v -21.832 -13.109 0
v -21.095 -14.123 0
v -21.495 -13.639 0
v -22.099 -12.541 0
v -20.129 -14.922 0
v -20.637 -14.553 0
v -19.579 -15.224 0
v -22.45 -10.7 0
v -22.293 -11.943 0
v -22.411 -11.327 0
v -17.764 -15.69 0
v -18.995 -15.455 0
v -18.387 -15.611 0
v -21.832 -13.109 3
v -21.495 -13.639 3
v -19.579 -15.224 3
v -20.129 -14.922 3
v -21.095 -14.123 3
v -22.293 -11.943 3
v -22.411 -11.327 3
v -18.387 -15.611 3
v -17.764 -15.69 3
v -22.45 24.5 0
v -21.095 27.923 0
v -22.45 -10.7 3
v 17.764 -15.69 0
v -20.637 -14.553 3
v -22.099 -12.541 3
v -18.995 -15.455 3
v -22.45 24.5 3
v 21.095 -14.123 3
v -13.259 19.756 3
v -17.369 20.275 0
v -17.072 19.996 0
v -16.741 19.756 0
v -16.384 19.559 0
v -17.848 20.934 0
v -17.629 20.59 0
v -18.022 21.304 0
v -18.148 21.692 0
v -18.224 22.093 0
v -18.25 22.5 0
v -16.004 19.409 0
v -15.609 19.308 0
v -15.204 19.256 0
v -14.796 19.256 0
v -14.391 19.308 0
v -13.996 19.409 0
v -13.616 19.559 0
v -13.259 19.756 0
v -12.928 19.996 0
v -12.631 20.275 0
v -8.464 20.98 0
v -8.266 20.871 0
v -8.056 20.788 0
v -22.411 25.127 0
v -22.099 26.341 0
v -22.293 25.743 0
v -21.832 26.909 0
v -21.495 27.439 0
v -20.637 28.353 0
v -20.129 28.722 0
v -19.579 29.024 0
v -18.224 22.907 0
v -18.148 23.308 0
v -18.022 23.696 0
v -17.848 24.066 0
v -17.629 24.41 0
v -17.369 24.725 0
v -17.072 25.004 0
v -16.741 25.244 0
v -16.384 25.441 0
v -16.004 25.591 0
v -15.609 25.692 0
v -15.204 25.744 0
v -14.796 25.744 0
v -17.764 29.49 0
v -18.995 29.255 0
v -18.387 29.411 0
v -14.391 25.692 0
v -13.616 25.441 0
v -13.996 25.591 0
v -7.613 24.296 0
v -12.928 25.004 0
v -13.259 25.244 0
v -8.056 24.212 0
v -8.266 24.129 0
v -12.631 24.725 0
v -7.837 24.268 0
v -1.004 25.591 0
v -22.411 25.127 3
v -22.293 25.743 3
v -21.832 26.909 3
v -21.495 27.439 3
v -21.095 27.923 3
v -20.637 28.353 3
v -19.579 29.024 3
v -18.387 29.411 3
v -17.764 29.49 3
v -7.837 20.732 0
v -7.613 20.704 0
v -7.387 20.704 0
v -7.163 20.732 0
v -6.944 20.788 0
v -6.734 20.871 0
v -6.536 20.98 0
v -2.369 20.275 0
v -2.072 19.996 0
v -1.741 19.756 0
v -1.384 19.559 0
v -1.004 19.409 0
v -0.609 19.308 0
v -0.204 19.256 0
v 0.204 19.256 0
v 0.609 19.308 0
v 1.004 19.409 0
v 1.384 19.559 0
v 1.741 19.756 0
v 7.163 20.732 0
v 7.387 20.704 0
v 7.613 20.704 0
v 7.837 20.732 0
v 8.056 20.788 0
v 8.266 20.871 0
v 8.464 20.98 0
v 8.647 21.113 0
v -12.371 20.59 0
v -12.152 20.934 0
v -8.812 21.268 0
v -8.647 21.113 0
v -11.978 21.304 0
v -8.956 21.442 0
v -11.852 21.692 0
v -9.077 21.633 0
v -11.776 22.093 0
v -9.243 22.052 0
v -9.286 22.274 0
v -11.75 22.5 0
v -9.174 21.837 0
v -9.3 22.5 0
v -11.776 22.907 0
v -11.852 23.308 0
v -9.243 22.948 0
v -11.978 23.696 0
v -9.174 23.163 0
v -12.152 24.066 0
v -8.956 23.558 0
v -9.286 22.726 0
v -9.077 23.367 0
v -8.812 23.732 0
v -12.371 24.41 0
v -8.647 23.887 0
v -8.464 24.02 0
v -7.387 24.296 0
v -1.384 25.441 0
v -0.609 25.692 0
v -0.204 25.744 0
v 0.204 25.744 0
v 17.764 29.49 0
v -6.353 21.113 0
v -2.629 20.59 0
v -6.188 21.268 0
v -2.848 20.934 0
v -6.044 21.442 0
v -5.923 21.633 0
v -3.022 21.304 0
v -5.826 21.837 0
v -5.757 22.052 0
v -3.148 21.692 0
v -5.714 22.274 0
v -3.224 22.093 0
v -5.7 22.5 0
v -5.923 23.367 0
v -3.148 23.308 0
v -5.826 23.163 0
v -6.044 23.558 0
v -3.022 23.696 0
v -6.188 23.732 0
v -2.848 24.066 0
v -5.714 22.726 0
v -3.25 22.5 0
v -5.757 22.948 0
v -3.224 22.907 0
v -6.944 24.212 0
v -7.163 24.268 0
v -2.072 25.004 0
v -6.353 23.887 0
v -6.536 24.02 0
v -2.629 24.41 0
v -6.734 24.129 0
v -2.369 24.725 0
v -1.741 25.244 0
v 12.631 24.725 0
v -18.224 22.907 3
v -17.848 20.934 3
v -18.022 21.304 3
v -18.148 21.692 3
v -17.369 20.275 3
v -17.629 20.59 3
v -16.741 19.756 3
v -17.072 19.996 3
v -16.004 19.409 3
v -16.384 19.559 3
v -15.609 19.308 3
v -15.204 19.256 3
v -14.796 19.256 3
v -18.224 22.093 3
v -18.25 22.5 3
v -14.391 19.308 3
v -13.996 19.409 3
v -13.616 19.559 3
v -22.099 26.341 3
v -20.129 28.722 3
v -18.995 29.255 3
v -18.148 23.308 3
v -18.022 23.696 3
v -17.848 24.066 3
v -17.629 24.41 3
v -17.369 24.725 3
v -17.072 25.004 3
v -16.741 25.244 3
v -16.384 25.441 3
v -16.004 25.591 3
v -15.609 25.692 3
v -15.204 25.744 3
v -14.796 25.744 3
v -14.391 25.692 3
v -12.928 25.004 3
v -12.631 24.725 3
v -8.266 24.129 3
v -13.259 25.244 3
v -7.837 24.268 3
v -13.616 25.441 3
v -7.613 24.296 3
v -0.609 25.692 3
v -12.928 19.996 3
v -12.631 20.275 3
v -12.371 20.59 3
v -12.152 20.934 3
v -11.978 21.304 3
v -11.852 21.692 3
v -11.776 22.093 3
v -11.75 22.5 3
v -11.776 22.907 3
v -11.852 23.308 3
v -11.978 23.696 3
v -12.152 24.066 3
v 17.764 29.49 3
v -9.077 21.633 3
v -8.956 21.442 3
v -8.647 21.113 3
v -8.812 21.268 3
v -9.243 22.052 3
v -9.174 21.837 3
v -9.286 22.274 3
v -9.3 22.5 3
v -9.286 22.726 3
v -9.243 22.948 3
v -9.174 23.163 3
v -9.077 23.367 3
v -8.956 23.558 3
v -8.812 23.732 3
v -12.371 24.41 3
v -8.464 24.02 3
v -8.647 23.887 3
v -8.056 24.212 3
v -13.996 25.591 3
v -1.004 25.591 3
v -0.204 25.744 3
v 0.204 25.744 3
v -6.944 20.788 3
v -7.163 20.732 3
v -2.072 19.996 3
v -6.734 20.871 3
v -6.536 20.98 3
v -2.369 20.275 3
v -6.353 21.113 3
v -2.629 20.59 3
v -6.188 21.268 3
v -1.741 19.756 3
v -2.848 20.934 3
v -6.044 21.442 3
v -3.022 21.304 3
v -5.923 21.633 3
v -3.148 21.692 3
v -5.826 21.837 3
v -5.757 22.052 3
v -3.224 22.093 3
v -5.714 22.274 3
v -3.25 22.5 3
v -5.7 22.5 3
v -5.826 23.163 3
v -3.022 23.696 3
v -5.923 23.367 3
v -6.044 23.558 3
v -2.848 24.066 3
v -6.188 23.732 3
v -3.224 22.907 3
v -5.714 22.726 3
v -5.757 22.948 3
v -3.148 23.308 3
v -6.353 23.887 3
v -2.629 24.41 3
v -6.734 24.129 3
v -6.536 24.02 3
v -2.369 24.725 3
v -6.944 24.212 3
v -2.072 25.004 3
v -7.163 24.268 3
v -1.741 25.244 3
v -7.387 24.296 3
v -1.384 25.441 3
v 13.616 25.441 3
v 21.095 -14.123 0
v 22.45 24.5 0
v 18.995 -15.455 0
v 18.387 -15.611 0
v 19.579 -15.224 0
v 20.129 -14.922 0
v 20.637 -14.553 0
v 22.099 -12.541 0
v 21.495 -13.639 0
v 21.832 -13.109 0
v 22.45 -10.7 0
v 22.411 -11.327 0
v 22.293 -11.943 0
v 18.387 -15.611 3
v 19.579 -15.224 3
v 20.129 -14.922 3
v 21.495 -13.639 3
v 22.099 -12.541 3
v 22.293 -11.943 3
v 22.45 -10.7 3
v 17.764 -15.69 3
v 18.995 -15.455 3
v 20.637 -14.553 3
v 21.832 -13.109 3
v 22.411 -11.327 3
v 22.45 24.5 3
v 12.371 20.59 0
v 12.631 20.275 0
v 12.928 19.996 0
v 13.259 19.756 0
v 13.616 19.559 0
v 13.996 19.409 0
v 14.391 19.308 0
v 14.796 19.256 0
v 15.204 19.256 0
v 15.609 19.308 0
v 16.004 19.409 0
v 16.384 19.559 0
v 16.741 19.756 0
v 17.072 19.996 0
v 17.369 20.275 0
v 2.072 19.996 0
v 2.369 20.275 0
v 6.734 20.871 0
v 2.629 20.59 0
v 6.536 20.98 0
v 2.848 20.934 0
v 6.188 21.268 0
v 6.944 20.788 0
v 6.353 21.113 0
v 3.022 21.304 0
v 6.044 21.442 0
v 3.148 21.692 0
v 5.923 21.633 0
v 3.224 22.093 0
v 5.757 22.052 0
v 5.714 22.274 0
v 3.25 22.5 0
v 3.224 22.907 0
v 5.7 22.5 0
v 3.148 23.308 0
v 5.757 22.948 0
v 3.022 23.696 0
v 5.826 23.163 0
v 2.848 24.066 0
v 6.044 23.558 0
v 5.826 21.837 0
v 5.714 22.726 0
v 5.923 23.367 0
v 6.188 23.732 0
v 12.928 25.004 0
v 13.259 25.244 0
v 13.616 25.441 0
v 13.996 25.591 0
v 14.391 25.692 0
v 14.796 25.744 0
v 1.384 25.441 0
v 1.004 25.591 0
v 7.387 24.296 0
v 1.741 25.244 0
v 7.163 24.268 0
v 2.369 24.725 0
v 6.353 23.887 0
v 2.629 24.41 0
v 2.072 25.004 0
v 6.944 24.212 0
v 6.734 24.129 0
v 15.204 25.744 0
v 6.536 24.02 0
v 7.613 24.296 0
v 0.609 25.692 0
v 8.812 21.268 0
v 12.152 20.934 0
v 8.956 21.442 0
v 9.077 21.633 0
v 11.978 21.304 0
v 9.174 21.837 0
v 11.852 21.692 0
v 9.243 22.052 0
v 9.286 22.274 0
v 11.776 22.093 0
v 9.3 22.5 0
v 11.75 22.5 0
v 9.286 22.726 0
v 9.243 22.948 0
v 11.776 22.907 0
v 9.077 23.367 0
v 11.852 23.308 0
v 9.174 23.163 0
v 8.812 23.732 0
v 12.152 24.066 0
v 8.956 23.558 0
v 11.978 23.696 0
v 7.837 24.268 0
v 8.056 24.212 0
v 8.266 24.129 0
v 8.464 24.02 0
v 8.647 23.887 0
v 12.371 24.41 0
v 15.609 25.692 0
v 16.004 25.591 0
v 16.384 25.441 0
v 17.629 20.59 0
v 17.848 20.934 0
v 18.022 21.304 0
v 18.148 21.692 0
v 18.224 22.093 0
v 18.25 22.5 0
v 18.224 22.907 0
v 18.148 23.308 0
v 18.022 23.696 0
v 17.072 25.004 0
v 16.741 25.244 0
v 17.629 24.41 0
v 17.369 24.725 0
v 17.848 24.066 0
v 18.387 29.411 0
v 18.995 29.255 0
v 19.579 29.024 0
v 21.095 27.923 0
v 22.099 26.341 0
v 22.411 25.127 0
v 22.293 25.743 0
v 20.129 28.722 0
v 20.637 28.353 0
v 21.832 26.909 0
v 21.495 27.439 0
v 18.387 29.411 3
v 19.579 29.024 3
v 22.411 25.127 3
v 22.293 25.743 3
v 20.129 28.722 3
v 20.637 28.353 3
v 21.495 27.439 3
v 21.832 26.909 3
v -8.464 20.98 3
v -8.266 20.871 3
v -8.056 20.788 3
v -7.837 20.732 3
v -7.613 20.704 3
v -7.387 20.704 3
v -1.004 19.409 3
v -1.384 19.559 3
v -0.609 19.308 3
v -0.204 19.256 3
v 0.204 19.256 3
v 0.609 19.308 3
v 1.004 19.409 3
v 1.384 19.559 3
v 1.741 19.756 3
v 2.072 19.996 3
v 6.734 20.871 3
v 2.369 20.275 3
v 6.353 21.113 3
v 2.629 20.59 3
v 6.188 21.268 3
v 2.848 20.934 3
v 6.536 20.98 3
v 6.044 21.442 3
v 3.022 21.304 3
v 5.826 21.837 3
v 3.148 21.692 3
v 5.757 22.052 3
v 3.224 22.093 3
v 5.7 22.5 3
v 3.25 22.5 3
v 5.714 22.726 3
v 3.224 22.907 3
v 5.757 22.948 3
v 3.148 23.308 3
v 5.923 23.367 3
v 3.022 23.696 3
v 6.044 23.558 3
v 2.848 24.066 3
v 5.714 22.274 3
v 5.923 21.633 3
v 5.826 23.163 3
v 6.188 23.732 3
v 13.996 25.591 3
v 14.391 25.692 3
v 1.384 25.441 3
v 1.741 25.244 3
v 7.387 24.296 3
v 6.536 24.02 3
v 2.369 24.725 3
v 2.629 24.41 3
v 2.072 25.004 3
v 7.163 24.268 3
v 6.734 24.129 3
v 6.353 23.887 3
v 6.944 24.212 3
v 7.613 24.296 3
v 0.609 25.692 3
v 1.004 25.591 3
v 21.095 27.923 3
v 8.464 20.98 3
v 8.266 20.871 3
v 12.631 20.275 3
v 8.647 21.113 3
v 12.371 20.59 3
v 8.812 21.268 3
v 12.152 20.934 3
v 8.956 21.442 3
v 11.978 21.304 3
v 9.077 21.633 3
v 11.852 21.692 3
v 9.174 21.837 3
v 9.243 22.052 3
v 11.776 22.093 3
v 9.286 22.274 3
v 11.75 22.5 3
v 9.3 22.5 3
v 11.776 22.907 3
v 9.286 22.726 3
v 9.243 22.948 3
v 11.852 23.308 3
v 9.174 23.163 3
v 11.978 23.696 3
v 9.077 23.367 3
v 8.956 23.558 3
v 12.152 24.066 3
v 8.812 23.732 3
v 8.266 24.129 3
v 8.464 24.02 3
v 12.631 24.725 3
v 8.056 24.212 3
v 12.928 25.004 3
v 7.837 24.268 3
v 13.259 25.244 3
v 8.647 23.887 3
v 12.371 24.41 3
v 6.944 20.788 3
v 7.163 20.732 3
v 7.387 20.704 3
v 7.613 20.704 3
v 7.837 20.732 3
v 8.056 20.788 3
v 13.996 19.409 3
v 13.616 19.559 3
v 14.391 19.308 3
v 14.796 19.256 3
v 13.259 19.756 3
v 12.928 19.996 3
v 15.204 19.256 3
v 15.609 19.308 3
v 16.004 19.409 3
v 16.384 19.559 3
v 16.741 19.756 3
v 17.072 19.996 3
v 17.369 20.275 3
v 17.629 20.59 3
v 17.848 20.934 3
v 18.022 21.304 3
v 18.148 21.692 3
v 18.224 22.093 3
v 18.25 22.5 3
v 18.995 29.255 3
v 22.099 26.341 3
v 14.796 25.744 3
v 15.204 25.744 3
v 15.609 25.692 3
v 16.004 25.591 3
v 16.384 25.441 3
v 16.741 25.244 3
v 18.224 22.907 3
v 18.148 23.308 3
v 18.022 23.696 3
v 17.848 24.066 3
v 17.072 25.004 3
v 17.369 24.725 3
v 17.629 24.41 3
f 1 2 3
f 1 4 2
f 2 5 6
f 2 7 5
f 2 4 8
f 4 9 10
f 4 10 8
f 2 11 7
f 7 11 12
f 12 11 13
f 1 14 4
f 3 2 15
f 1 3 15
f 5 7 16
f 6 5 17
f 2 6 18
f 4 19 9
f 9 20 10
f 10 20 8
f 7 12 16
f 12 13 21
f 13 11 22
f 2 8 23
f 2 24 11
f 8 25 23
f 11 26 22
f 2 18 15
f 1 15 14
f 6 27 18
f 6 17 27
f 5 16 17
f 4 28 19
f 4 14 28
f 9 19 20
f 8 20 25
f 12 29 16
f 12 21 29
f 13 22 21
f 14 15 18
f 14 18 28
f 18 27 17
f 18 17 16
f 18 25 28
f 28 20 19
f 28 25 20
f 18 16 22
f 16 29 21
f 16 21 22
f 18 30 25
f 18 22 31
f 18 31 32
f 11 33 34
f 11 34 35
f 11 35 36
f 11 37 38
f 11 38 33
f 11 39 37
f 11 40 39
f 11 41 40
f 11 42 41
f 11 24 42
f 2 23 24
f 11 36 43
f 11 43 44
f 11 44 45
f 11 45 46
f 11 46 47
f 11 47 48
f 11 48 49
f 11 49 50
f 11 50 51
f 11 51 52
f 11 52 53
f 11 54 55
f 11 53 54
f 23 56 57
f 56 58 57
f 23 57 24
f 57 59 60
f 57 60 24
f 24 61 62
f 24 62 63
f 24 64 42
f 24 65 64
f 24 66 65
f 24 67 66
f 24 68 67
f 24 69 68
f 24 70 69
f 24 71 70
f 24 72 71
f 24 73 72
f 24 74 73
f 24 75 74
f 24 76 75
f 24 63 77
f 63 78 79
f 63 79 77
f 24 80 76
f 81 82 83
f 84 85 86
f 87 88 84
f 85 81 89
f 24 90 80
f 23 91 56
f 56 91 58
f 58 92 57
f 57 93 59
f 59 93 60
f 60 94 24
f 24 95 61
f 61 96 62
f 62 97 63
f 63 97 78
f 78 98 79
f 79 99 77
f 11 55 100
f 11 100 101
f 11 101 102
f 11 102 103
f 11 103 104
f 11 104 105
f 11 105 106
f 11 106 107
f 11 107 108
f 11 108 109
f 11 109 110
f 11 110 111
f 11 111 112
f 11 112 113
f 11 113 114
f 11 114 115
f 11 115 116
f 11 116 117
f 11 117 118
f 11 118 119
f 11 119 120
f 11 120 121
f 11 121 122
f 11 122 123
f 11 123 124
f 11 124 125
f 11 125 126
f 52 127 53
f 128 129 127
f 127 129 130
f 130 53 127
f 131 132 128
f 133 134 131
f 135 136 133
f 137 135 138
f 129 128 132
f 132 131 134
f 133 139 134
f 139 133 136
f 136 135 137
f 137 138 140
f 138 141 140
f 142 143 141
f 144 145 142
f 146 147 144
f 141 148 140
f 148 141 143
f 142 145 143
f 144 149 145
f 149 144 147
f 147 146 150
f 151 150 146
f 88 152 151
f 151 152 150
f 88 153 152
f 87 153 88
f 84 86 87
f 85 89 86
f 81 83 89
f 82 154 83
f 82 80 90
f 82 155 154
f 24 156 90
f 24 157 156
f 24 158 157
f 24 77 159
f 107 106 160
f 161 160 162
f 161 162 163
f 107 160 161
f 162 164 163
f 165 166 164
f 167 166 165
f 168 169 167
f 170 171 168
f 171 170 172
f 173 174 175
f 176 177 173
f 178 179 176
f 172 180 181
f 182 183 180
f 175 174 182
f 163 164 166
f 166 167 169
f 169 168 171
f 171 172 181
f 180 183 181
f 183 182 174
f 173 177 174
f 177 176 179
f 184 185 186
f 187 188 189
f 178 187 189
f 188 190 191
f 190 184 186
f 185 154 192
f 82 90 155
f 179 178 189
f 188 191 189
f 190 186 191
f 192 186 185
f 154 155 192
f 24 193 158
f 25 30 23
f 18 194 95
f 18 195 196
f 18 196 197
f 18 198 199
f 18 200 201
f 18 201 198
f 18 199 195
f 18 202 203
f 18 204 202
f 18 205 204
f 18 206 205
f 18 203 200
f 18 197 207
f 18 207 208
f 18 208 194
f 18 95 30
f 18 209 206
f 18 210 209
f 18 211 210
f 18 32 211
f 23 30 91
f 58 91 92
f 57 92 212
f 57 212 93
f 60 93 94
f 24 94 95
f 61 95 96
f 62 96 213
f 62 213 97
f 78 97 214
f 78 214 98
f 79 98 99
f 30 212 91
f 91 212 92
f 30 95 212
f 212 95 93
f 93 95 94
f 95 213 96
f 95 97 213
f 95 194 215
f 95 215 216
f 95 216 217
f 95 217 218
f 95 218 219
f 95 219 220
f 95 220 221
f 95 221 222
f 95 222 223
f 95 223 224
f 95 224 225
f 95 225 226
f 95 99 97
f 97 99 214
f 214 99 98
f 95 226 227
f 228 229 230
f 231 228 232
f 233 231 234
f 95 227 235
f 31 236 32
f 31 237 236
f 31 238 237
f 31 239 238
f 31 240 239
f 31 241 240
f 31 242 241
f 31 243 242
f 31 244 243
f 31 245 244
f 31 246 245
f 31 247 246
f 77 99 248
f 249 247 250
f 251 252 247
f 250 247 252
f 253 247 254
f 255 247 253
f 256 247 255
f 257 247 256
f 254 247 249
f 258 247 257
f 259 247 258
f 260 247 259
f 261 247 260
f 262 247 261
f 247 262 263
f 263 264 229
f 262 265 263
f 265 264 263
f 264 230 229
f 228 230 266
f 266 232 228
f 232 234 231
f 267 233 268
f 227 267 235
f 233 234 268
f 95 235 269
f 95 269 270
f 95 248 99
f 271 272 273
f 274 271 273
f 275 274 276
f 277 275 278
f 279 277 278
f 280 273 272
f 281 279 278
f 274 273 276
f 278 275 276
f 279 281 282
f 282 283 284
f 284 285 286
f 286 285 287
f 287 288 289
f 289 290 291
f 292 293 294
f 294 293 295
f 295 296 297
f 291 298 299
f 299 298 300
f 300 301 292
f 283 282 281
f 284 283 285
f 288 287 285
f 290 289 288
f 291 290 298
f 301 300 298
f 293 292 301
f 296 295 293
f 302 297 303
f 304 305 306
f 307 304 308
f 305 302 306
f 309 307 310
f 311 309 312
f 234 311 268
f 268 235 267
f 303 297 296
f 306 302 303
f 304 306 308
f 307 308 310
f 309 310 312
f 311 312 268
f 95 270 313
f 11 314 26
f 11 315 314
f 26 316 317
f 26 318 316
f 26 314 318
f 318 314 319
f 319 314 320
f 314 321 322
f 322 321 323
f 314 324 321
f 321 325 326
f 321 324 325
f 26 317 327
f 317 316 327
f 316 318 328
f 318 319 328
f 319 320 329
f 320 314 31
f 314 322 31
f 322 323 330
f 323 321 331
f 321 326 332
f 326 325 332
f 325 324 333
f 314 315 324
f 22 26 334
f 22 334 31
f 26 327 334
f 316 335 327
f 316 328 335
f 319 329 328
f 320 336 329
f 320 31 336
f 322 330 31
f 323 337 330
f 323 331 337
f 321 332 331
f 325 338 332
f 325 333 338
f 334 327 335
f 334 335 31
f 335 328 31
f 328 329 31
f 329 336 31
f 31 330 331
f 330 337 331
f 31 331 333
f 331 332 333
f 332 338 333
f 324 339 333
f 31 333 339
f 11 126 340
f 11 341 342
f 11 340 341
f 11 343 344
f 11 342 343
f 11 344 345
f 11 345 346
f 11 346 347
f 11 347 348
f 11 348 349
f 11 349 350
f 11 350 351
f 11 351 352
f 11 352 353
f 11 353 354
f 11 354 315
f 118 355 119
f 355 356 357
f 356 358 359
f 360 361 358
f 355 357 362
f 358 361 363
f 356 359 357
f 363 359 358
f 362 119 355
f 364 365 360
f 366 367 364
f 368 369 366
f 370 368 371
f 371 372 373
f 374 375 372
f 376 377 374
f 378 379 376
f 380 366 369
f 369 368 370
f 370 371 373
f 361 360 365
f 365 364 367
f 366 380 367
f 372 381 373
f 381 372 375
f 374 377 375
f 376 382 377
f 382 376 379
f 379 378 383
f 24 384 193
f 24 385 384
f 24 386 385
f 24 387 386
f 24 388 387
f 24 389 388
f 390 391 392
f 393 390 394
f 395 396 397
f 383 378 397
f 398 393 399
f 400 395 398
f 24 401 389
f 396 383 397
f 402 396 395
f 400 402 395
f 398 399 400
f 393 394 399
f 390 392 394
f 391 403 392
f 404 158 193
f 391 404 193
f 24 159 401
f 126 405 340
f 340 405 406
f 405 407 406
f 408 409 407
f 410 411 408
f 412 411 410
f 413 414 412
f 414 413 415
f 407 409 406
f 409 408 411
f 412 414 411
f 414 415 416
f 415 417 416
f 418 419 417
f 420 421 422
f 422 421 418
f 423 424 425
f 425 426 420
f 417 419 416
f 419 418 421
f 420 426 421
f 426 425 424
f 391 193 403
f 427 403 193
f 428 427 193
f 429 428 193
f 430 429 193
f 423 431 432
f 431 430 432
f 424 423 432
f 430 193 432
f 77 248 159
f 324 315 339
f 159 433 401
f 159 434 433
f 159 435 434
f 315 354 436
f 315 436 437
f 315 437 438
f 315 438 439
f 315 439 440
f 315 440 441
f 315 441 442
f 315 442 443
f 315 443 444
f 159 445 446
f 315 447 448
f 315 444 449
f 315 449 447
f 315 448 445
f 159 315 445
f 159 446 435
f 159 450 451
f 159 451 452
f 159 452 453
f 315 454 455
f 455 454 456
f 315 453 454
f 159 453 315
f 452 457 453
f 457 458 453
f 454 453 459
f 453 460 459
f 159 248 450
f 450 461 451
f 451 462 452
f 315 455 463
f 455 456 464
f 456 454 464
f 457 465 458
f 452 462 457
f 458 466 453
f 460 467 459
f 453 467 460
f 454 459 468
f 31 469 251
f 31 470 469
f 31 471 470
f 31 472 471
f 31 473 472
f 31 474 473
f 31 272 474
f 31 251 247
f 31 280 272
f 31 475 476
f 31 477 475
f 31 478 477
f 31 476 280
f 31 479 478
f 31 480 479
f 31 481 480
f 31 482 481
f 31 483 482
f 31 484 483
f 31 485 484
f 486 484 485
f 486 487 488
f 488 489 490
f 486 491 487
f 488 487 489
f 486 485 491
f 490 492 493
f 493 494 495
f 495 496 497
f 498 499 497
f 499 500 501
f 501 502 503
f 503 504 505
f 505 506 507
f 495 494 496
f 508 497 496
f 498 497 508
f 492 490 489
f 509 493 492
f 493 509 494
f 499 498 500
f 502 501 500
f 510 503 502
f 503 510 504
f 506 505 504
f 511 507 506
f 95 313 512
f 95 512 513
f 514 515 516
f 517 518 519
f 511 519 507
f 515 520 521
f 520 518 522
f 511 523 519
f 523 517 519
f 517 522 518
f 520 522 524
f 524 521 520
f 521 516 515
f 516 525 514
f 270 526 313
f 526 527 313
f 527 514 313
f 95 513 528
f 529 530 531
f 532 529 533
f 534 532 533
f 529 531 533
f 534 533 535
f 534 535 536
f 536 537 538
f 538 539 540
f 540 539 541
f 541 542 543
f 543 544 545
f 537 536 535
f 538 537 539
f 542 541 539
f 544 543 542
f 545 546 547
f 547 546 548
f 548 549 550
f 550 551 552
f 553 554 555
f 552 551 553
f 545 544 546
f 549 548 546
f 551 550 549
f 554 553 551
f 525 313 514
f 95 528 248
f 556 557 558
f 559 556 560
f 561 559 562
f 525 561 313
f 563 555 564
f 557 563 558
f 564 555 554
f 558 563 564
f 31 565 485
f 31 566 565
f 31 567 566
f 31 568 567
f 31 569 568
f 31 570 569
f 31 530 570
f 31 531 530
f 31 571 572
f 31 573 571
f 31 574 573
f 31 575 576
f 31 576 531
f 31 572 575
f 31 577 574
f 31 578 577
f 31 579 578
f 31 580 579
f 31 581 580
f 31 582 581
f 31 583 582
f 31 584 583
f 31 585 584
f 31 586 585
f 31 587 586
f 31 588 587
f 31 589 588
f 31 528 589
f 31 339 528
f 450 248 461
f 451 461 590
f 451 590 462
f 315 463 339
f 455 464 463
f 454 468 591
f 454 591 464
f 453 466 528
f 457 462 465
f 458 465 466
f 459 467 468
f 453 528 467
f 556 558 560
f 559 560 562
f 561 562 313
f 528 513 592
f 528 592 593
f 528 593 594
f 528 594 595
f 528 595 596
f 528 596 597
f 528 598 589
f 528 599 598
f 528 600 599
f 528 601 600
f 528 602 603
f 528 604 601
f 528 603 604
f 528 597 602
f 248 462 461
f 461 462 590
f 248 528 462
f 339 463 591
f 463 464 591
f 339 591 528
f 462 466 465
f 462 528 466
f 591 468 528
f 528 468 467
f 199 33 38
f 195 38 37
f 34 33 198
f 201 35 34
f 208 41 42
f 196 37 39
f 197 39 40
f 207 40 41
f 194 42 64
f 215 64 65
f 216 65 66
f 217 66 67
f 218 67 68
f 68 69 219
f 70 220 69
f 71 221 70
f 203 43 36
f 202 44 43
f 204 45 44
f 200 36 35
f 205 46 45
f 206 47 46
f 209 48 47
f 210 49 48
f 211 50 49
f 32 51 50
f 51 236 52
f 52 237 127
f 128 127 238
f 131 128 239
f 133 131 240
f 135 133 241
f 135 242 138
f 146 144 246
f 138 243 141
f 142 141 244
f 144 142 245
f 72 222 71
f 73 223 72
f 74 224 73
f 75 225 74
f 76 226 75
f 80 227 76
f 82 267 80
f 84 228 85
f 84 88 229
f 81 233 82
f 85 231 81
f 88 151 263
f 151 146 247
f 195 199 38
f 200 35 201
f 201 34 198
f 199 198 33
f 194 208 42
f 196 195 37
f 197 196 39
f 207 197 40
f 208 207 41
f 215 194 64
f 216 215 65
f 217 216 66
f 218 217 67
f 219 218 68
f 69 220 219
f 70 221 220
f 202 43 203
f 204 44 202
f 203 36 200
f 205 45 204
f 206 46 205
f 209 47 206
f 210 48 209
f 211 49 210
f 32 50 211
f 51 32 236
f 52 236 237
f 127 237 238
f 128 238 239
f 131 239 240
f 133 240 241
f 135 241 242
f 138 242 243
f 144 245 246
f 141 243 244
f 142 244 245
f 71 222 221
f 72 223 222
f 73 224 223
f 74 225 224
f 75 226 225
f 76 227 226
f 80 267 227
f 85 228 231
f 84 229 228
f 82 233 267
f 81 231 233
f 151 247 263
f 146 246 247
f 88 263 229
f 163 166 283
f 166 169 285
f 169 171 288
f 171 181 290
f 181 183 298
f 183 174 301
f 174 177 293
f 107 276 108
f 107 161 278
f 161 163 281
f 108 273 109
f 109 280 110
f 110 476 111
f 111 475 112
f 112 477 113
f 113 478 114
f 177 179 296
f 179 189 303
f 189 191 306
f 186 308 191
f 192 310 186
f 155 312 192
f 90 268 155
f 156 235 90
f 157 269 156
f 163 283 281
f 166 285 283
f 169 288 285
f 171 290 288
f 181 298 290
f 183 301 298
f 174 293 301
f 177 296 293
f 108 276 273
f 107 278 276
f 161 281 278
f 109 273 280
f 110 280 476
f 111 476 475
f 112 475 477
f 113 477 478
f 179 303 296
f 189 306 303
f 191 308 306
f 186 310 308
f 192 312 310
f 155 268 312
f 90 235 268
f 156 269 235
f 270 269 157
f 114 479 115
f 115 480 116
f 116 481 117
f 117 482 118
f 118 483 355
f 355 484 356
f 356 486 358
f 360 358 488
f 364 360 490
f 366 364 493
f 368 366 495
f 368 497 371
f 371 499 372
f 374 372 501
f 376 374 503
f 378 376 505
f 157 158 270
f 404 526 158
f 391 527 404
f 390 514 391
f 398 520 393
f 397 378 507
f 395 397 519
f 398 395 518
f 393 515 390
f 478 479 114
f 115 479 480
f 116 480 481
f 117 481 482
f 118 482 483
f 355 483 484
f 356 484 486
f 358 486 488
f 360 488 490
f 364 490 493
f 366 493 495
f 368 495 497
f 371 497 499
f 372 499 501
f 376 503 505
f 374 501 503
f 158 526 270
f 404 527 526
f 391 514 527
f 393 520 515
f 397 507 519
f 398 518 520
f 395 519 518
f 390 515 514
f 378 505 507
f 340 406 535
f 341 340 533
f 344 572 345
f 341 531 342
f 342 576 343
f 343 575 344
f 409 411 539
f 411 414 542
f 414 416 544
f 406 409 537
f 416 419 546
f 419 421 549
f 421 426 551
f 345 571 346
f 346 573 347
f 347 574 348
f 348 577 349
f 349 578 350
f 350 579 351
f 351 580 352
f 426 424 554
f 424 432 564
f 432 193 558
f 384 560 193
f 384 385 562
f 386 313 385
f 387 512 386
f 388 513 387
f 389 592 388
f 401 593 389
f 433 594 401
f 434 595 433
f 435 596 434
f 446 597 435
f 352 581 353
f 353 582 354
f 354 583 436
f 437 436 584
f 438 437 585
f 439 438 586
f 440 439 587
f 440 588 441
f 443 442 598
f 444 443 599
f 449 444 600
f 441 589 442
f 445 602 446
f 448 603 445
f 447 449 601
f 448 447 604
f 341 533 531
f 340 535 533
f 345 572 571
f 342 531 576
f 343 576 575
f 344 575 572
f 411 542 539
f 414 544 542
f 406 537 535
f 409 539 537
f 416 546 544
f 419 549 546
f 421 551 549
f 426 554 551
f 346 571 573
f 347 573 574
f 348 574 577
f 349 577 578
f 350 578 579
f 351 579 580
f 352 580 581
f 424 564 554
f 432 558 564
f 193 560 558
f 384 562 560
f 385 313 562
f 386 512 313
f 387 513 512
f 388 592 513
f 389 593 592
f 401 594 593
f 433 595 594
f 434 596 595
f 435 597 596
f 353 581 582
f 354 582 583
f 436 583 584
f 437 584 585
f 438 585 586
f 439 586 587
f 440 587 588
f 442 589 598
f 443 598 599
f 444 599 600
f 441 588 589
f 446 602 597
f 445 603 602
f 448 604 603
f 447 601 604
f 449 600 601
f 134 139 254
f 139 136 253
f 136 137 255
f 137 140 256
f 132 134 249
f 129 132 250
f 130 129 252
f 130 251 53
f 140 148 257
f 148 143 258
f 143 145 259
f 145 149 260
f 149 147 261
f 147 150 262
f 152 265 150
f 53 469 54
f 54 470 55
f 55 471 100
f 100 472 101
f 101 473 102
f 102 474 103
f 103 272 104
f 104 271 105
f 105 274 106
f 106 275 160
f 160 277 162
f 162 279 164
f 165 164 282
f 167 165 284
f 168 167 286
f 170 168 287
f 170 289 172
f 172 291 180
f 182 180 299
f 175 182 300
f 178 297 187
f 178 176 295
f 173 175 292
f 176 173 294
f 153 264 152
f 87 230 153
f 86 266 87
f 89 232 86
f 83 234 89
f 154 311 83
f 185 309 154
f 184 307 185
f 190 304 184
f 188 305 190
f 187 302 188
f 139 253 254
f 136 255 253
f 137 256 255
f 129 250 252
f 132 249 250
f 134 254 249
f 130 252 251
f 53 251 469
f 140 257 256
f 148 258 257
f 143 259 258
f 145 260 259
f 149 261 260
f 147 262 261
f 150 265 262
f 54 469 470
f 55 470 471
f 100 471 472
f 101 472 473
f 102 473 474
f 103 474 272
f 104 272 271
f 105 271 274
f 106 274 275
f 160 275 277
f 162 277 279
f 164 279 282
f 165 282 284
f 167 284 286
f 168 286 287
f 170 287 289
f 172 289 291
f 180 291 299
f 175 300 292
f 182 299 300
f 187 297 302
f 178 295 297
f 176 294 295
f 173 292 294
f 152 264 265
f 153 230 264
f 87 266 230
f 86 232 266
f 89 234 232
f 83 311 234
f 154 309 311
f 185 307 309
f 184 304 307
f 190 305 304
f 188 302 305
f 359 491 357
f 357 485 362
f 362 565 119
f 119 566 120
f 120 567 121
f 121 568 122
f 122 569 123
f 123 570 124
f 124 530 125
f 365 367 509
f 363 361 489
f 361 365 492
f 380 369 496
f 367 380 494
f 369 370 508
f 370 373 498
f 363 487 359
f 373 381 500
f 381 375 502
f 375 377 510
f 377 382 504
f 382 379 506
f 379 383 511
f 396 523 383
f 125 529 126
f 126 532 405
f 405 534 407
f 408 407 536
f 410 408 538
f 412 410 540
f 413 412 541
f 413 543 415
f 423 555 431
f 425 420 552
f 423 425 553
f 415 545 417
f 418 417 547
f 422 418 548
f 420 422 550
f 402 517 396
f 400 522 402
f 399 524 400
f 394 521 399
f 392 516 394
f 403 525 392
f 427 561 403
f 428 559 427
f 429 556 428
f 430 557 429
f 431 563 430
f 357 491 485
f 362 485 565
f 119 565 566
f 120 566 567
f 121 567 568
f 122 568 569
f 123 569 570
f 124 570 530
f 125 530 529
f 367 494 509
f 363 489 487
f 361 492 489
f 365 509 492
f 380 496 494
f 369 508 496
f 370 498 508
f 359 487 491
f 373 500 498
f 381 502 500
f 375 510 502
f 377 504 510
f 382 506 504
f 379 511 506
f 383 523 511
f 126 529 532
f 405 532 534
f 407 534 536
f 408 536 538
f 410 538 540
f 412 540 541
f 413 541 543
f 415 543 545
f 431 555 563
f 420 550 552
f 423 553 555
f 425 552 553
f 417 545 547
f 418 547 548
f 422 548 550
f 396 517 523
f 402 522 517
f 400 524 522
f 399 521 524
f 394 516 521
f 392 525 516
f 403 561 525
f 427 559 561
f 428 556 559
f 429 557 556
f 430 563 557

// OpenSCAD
$fn = 50;

difference() {
	union() {
		translate(v = [0.0, 6.9, 0]) {
			hull() {
				translate(v = [-17.45, 17.6, 0]) {
					cylinder(h = 3, r = 5);
				}
				translate(v = [17.45, 17.6, 0]) {
					cylinder(h = 3, r = 5);
				}
				translate(v = [-17.45, -17.6, 0]) {
					cylinder(h = 3, r = 5);
				}
				translate(v = [17.45, -17.6, 0]) {
					cylinder(h = 3, r = 5);
				}
			}
		}
	}
	union() {
		translate(v = [-15.0, 22.5, -1]) {
			cylinder(h = 5, r = 3.25);
		}
		translate(v = [0.0, 22.5, -1]) {
			cylinder(h = 5, r = 3.25);
		}
		translate(v = [15.0, 22.5, -1]) {
			cylinder(h = 5, r = 3.25);
		}
		translate(v = [-7.5, 22.5, -1]) {
			cylinder(h = 5, r = 1.8);
		}
		translate(v = [7.5, 22.5, -1]) {
			cylinder(h = 5, r = 1.8);
		}
	}
}
